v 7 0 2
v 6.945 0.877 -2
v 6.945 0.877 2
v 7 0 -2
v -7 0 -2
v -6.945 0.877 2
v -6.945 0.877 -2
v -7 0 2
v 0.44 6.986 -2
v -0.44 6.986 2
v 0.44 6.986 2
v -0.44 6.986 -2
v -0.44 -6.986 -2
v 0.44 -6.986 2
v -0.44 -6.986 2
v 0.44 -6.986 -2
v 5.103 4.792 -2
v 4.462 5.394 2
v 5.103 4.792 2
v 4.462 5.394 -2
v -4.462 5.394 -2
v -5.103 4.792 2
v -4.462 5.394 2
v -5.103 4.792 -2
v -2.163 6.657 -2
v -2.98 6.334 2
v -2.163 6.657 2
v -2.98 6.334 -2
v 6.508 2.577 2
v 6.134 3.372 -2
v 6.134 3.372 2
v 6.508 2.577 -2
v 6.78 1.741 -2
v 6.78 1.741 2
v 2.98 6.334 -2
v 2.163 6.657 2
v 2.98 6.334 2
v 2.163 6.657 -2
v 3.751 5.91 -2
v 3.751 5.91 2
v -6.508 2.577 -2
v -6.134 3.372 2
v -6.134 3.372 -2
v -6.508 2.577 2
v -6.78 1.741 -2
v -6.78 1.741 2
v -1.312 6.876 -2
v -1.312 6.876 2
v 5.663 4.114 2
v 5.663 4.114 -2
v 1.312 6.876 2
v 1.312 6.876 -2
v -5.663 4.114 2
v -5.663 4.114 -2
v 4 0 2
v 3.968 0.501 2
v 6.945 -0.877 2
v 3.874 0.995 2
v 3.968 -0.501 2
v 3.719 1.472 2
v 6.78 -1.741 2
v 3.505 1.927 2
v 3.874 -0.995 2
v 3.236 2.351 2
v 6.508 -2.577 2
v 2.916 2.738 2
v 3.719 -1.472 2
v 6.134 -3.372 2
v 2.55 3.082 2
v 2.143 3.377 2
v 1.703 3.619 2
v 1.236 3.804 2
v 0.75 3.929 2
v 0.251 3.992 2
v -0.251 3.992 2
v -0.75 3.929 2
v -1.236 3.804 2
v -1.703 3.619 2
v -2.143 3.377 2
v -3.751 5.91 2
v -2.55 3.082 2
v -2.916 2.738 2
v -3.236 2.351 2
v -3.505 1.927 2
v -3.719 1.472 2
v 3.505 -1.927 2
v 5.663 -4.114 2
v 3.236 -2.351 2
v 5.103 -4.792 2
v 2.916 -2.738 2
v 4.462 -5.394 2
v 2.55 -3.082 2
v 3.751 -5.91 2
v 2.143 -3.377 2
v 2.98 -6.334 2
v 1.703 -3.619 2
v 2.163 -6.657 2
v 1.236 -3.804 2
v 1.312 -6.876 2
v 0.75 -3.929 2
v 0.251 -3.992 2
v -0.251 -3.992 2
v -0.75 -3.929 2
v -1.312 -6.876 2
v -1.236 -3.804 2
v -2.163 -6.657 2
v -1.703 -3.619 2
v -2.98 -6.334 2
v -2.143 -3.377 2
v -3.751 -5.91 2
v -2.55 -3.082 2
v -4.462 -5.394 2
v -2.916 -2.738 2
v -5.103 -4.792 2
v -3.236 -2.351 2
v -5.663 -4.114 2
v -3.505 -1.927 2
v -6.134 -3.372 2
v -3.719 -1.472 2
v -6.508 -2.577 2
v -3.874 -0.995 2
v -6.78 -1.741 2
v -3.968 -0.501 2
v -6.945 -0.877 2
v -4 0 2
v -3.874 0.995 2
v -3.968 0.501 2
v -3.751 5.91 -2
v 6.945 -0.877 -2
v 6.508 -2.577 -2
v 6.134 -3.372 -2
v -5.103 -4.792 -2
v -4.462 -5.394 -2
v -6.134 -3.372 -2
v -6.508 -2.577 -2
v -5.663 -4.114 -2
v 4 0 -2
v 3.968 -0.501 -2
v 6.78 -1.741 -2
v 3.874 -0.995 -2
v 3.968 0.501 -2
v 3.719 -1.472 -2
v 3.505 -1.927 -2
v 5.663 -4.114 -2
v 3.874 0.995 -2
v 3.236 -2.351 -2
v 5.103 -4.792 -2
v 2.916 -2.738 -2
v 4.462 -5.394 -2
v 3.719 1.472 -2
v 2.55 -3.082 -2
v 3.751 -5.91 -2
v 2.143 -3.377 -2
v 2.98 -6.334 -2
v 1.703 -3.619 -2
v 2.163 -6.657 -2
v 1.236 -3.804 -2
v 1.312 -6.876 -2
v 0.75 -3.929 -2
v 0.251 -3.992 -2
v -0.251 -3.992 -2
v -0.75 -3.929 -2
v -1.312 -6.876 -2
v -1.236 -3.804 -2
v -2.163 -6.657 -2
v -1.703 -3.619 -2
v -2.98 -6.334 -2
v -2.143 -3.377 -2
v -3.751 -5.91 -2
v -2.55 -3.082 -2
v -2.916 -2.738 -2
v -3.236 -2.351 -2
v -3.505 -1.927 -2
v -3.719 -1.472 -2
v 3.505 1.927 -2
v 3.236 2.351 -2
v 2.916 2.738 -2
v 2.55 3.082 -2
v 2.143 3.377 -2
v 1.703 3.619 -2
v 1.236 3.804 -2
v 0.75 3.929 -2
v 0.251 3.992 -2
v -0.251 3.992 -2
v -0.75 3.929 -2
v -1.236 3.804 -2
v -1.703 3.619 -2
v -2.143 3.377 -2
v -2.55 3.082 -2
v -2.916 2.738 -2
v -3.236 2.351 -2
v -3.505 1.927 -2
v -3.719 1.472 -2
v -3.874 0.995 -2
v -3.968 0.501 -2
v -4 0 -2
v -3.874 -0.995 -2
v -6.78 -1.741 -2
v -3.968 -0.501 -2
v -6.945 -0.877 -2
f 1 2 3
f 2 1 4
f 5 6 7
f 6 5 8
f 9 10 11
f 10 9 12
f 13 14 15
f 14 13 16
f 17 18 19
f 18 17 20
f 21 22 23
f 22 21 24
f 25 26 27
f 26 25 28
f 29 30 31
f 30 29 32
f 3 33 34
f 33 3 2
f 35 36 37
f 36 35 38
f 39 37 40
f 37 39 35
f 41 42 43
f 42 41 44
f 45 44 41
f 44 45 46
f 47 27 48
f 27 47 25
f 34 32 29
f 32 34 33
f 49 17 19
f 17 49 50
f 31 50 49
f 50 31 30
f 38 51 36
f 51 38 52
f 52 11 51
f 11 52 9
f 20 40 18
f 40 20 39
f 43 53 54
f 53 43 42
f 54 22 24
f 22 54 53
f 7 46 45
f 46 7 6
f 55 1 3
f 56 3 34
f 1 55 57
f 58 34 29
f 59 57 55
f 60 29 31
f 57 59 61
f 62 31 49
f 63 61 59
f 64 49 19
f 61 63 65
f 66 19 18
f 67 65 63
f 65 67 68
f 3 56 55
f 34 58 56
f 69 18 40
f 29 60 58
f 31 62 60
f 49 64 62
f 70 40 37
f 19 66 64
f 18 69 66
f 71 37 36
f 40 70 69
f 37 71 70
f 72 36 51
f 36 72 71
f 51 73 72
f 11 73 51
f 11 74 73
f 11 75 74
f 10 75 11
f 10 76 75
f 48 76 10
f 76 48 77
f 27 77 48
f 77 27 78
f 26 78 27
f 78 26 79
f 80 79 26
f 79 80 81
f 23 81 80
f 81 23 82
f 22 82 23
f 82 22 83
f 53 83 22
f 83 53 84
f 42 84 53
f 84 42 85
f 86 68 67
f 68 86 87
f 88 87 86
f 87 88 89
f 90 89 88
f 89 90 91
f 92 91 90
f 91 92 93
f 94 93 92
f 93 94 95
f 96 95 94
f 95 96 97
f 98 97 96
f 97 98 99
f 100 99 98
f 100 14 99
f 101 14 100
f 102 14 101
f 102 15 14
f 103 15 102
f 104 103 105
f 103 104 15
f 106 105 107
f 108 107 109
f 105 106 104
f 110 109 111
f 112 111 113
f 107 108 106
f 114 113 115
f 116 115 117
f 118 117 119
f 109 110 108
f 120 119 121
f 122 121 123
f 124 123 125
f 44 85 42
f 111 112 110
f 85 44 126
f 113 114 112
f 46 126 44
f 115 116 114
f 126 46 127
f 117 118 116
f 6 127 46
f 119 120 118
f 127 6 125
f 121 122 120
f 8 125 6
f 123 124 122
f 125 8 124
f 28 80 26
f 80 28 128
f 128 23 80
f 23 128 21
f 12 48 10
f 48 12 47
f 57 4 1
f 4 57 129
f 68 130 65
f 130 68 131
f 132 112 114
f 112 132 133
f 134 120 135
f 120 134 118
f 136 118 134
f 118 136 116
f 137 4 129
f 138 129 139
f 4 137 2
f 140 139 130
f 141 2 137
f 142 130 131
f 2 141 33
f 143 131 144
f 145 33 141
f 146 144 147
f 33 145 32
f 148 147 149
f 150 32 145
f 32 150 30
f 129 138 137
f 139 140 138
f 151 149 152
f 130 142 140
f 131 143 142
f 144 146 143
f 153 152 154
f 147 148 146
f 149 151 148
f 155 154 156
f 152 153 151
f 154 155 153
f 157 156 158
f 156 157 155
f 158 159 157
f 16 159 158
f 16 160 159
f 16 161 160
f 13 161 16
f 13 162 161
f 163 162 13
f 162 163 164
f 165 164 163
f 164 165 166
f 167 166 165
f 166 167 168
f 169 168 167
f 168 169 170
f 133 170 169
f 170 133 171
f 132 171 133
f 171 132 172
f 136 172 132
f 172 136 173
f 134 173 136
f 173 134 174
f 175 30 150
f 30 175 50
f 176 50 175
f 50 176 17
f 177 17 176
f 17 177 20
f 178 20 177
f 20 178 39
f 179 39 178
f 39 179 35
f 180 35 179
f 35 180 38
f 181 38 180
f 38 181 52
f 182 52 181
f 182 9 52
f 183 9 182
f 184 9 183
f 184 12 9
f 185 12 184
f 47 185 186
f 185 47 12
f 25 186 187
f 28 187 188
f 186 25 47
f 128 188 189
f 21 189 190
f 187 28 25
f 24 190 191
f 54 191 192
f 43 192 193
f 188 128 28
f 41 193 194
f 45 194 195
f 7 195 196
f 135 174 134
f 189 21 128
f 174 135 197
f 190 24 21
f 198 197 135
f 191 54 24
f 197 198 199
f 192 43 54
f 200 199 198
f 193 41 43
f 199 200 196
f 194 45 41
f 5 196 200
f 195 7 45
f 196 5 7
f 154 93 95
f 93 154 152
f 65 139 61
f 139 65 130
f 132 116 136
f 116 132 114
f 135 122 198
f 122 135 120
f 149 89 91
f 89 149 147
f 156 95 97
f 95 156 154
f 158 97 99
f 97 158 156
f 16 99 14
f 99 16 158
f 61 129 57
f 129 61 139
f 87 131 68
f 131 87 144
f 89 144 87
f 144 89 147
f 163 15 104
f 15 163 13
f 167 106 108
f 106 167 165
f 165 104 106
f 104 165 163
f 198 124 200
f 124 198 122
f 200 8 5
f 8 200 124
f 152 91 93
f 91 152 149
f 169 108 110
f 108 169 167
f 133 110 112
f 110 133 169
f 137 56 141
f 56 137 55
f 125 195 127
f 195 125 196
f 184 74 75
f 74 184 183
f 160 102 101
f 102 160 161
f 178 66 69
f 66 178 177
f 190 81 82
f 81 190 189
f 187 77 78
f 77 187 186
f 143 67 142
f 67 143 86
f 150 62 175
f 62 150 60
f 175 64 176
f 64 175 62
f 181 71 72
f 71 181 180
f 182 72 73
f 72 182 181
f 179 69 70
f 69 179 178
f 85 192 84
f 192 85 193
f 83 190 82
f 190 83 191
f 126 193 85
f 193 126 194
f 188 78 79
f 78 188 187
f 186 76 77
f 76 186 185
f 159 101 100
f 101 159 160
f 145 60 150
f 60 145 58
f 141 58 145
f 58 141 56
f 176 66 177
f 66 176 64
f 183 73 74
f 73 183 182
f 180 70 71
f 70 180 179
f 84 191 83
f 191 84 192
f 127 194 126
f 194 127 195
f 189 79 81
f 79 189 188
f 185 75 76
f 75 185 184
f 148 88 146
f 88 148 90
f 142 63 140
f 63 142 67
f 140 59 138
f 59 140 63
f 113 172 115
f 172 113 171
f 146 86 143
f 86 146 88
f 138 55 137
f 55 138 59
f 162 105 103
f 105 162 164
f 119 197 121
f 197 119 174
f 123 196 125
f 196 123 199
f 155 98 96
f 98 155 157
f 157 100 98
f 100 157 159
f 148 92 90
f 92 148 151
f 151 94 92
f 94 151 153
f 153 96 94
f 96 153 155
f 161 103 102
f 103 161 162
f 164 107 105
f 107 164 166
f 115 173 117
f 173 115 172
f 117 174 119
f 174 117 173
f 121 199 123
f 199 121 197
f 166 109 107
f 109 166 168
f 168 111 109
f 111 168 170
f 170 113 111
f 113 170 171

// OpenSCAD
$fn = 50;


difference() {
	union() {
		translate(v = [0, 0, -2.0000000000]) {
			cylinder(h = 4, r = 7.0000000000);
		}
	}
	union() {
		translate(v = [0, 0, -100.0000000000]) {
			cylinder(h = 200, r = 4);
		}
	}
}
